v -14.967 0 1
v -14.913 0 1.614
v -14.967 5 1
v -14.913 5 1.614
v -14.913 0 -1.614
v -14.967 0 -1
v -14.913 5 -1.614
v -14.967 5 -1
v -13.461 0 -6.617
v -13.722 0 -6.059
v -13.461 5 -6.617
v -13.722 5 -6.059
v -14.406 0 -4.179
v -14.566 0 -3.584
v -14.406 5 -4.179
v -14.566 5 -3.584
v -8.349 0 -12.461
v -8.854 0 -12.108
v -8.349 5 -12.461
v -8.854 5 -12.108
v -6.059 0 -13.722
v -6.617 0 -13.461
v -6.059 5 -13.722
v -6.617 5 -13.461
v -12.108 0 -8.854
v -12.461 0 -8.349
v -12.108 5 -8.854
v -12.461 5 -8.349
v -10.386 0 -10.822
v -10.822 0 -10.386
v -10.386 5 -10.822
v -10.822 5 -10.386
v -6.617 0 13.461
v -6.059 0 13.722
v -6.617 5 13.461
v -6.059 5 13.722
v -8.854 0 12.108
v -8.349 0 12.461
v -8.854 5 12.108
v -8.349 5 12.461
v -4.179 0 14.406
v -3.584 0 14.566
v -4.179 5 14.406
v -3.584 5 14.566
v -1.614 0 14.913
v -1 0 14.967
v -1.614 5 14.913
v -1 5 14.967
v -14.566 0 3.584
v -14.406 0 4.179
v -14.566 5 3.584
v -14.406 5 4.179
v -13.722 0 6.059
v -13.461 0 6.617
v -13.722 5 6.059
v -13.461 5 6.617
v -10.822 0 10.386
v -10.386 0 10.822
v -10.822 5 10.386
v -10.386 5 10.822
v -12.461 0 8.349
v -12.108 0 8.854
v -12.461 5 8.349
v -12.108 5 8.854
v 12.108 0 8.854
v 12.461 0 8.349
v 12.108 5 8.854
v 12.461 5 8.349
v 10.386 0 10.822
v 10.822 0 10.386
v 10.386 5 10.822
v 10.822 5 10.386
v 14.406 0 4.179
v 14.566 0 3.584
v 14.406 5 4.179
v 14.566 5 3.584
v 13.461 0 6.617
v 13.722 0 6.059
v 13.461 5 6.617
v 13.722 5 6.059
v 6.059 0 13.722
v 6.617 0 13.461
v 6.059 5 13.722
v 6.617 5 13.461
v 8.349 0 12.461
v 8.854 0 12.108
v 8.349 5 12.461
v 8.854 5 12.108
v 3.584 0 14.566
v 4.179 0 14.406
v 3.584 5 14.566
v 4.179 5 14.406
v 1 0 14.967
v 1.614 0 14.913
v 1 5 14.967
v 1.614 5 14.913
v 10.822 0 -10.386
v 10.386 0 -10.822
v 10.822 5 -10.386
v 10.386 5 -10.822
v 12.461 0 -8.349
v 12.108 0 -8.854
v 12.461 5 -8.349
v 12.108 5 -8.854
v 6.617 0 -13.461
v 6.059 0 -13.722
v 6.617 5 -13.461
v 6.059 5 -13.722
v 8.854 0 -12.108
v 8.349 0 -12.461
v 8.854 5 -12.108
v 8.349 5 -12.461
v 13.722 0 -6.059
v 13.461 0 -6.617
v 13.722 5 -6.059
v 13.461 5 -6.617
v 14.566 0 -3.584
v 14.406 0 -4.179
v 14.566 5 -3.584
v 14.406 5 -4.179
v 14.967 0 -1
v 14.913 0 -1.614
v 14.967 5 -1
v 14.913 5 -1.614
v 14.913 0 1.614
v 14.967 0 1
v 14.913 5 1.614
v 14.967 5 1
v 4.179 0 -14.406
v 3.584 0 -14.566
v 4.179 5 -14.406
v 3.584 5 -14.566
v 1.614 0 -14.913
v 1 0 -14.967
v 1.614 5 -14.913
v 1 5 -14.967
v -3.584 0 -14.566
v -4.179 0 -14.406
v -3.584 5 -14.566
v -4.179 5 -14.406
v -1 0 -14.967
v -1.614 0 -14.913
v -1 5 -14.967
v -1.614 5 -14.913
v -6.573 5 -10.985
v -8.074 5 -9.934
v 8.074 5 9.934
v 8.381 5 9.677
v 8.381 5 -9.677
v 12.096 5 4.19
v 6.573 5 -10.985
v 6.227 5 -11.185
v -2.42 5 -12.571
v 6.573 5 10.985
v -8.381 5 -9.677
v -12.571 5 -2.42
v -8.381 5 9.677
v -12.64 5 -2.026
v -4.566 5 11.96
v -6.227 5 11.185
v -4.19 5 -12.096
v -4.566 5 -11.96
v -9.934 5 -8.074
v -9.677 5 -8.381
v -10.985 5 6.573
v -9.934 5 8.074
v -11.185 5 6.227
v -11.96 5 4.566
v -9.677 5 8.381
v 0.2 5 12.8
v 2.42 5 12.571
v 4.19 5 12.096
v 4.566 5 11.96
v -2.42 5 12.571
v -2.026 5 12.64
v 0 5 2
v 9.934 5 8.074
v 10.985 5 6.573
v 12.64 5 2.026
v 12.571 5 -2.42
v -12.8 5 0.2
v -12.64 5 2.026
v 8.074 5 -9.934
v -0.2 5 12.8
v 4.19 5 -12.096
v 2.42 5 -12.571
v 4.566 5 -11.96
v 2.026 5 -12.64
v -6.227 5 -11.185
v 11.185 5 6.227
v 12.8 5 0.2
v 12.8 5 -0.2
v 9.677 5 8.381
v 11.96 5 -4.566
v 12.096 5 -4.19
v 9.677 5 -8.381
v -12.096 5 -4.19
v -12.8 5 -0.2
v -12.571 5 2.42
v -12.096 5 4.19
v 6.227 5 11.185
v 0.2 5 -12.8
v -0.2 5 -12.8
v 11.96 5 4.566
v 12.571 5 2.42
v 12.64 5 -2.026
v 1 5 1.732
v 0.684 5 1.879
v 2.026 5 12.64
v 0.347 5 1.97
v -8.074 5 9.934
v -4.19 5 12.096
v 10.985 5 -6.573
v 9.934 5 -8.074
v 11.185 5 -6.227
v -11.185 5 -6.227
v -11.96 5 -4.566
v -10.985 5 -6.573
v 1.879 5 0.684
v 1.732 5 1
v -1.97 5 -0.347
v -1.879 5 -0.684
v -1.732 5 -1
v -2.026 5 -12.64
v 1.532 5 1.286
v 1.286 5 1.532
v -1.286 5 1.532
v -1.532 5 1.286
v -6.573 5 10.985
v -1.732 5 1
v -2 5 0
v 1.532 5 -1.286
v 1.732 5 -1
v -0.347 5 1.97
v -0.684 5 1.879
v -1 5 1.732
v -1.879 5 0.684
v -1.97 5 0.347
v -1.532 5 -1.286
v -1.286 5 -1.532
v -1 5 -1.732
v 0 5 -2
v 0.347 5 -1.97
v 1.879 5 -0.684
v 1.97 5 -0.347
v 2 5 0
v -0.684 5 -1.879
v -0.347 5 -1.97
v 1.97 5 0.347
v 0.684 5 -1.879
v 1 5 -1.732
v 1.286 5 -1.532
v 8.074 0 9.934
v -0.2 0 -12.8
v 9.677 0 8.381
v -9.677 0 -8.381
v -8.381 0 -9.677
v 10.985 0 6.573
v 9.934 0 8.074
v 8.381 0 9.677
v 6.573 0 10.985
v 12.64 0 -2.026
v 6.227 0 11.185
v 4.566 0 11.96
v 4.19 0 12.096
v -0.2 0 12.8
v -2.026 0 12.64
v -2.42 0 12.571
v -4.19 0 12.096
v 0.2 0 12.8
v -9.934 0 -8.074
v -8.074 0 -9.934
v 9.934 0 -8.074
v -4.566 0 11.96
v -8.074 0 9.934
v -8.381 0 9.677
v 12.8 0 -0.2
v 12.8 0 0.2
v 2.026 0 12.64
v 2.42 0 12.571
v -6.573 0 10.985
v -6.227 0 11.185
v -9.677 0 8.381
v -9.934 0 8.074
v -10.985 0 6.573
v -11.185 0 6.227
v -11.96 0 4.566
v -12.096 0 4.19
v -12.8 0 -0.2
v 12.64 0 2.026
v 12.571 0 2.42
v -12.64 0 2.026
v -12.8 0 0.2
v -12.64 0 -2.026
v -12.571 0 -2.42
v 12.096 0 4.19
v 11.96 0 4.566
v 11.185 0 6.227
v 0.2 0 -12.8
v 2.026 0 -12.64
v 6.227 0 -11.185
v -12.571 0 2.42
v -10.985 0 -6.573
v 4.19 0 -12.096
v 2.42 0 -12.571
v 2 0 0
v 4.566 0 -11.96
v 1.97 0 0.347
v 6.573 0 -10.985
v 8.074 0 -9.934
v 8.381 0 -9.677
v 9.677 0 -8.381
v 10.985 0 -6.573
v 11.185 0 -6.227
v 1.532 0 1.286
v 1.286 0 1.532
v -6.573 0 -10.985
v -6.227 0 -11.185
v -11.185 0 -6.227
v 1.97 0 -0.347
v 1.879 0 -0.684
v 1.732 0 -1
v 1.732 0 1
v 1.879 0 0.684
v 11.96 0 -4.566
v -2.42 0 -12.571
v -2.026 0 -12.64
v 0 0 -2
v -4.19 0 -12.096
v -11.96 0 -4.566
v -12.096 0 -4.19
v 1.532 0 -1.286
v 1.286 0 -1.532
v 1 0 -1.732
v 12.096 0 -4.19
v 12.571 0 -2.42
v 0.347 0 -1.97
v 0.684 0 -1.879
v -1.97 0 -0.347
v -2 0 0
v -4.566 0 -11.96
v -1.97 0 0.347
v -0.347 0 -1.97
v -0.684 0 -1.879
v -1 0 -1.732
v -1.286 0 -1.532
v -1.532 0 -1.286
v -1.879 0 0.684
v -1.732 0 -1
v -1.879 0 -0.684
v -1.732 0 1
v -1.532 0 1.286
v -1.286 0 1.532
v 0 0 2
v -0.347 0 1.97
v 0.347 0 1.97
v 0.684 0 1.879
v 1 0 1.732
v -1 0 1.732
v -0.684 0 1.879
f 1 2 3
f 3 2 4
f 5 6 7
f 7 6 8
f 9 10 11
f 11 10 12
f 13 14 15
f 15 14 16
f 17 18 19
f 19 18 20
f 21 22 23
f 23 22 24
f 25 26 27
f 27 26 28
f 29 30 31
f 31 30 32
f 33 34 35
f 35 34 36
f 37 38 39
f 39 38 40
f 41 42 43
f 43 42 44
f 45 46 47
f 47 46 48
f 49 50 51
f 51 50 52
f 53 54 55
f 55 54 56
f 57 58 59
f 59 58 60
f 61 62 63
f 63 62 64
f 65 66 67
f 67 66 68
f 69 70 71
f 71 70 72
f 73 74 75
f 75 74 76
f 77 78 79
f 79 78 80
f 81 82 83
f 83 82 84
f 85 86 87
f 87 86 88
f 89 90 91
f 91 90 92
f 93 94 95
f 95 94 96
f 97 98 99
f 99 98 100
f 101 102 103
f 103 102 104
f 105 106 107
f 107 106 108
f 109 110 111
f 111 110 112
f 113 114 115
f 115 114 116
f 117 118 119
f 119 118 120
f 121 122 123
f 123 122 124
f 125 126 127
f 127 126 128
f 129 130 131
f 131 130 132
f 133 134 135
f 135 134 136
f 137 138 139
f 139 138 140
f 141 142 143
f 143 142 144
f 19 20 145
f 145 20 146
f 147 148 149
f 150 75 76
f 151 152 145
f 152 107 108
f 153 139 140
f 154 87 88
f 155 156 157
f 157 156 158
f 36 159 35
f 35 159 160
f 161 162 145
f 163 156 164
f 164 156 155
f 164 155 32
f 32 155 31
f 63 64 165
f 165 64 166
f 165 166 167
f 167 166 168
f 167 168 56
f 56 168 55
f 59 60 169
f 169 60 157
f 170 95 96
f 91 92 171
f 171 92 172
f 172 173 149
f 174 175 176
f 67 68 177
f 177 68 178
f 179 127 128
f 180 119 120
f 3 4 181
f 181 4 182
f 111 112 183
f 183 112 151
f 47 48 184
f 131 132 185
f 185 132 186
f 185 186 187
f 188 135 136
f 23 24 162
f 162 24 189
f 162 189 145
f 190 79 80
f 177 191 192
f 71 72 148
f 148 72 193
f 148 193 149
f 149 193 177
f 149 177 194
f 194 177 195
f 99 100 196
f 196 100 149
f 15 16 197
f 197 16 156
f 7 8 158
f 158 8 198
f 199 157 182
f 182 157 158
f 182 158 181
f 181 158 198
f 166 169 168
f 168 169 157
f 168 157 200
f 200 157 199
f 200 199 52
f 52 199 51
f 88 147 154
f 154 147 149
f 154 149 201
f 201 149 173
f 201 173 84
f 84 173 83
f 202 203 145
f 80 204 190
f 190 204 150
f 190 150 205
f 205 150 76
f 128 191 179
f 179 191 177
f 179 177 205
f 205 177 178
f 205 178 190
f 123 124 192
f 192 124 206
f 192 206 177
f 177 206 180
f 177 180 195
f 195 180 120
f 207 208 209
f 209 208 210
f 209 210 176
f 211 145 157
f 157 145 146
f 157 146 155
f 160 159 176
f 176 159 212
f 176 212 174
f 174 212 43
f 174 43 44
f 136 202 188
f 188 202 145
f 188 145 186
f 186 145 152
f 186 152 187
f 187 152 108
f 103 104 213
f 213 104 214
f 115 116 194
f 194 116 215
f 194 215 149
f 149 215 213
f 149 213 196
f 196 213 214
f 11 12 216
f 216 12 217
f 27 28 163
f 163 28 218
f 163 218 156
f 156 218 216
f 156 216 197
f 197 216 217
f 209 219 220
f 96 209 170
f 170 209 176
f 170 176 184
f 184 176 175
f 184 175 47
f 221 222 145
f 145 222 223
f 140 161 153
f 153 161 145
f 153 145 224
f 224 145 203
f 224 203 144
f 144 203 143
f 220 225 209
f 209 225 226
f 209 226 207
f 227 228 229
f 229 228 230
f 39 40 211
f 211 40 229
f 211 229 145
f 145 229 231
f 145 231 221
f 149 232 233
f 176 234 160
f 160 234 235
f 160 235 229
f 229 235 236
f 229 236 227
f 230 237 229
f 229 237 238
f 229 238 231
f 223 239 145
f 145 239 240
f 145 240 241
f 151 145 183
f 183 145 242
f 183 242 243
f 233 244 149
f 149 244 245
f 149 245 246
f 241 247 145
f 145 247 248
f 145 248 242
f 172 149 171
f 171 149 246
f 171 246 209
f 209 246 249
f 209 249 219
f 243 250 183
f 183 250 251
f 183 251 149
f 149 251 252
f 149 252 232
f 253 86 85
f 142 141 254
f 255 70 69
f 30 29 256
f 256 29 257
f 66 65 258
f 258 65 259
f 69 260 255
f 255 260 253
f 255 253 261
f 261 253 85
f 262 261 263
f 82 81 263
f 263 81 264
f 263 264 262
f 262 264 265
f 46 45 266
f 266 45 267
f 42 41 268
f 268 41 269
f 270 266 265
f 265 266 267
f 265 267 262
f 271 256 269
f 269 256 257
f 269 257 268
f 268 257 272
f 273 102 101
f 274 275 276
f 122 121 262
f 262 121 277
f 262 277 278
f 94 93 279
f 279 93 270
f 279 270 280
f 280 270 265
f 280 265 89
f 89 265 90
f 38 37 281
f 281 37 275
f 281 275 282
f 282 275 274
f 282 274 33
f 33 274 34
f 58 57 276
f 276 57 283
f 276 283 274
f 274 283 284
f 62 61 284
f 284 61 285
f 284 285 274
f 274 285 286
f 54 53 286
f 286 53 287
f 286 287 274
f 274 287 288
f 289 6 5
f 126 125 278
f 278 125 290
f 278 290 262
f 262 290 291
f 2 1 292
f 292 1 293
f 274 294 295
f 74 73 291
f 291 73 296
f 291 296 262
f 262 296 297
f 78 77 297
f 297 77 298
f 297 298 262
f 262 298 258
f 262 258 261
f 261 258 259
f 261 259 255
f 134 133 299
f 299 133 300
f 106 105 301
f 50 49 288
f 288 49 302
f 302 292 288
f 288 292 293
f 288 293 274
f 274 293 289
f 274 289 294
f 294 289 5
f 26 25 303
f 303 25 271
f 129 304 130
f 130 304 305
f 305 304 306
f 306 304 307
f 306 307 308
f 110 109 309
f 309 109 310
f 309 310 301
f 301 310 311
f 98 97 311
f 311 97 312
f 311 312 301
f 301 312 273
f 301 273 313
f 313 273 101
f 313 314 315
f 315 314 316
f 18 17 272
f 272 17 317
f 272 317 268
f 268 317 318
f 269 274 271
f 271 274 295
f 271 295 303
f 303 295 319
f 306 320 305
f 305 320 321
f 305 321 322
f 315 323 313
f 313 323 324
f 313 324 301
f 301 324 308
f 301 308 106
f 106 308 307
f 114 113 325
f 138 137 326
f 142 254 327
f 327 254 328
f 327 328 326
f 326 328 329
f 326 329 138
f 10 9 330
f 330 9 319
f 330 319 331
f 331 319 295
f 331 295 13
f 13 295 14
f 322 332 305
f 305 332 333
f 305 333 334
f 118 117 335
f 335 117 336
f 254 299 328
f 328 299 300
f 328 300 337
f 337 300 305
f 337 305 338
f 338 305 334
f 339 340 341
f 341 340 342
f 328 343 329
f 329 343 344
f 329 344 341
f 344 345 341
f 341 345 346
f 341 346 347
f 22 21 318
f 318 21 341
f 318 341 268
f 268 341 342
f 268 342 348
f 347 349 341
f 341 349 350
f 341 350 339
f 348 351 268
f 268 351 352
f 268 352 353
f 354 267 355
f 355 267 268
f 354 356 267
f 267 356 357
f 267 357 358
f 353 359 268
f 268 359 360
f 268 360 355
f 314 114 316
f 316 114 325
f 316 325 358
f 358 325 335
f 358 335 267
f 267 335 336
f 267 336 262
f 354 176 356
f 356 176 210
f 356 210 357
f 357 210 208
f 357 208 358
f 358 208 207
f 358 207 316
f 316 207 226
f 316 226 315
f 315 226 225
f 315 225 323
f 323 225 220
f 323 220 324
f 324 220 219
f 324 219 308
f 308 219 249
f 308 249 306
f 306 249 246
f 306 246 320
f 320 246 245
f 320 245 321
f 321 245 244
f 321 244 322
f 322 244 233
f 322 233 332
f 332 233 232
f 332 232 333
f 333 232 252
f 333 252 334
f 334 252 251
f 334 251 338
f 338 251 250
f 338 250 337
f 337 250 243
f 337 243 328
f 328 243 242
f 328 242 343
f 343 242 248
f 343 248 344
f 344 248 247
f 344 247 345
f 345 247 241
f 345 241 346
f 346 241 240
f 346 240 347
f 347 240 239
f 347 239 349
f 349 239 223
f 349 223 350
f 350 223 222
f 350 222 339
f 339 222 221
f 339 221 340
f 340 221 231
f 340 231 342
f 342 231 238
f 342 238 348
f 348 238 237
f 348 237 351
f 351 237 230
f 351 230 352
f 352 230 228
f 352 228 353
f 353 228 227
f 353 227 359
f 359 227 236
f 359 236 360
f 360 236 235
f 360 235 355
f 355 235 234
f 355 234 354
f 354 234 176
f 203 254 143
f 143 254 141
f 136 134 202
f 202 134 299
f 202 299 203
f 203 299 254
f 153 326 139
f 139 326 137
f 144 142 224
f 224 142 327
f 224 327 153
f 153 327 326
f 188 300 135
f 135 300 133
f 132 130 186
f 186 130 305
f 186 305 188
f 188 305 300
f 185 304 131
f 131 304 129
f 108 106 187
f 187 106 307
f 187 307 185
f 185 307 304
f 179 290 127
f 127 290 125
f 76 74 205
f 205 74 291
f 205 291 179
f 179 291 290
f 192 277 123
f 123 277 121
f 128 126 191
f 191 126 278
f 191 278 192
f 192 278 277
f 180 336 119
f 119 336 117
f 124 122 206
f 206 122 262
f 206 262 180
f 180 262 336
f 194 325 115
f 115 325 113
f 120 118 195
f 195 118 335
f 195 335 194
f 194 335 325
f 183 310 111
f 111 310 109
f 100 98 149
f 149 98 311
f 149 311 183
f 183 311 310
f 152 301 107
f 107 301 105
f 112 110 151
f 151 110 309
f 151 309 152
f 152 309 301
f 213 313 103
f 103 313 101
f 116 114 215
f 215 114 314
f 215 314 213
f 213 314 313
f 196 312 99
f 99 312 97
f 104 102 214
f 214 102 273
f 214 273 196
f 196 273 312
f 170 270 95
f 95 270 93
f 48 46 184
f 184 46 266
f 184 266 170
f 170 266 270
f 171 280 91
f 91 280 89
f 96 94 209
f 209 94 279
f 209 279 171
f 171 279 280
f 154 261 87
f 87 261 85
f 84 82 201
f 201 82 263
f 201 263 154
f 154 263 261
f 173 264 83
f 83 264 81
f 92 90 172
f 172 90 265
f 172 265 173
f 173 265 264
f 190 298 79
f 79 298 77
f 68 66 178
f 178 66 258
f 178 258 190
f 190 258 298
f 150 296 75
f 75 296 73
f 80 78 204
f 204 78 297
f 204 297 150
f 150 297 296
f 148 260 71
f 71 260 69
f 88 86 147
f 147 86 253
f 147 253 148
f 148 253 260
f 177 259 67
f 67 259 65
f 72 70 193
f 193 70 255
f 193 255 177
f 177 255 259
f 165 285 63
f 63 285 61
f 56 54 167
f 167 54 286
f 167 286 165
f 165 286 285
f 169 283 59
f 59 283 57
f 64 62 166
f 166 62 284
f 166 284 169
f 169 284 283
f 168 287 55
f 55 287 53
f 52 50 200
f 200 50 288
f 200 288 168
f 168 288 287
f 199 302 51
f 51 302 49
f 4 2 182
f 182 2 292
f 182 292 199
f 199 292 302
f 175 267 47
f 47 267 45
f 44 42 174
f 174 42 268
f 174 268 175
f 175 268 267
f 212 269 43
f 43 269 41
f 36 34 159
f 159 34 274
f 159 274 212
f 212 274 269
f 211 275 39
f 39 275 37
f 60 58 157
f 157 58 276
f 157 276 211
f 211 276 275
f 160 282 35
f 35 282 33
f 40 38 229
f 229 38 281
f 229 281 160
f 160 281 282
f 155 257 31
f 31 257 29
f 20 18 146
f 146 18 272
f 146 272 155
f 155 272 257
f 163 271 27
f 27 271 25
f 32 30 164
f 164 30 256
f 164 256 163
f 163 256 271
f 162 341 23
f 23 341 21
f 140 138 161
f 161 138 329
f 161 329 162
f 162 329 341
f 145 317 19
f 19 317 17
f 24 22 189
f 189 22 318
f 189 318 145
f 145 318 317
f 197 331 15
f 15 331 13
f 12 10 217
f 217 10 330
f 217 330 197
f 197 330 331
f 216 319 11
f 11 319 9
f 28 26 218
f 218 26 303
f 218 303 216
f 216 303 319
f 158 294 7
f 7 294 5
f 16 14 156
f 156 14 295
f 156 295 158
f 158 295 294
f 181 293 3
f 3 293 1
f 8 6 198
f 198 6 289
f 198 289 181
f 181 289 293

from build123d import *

# Parameters (mm, degrees)
SKETCH1_R           = 15
BOSS_EXTRUDE1_DEPTH = 5
SKETCH2_R           = 2
CUT_EXTRUDE1_DEPTH  = 6
CUT_EXTRUDE2_DEPTH  = 10
CIRPATTERN1_COUNT   = 36


with BuildPart() as part:
    # Sketch1 → Boss-Extrude1 (new body)
    with BuildSketch(Plane(origin=(0, 0, 0), x_dir=(1, 0, 0), z_dir=(0, 1, 0))):
        Circle(SKETCH1_R)
    extrude(amount=BOSS_EXTRUDE1_DEPTH)

    # Sketch2 → Cut-Extrude1 (cut, through all)
    with BuildSketch(Plane(origin=(0, 5, 0), x_dir=(1, 0, 0), z_dir=(0, 1, 0))):
        Circle(SKETCH2_R)
    extrude(amount=-CUT_EXTRUDE1_DEPTH, mode=Mode.SUBTRACT)

    # Sketch3 → Cut-Extrude2 (cut)
    with BuildSketch(Plane(origin=(0, 5, 0), x_dir=(1, 0, 0), z_dir=(0, 1, 0))):
        Polygon((0, 12.8), (0.2, 12.8), (1, 14.966629547), (1, 18.114701451), (-1, 18.114701451), (-1, 14.966629547), (-0.2, 12.8), align=None)
    cut_extrude2 = extrude(amount=-CUT_EXTRUDE2_DEPTH, mode=Mode.SUBTRACT)

    # CirPattern1: Cut-Extrude2 ×36 about axis
    cirpattern1_axis = Axis((0, 0, 0), (0, 1, 0))
    for i in range(1, CIRPATTERN1_COUNT):
        add(cut_extrude2.rotate(cirpattern1_axis, i * 360 / CIRPATTERN1_COUNT), mode=Mode.SUBTRACT)


solid = part.part
